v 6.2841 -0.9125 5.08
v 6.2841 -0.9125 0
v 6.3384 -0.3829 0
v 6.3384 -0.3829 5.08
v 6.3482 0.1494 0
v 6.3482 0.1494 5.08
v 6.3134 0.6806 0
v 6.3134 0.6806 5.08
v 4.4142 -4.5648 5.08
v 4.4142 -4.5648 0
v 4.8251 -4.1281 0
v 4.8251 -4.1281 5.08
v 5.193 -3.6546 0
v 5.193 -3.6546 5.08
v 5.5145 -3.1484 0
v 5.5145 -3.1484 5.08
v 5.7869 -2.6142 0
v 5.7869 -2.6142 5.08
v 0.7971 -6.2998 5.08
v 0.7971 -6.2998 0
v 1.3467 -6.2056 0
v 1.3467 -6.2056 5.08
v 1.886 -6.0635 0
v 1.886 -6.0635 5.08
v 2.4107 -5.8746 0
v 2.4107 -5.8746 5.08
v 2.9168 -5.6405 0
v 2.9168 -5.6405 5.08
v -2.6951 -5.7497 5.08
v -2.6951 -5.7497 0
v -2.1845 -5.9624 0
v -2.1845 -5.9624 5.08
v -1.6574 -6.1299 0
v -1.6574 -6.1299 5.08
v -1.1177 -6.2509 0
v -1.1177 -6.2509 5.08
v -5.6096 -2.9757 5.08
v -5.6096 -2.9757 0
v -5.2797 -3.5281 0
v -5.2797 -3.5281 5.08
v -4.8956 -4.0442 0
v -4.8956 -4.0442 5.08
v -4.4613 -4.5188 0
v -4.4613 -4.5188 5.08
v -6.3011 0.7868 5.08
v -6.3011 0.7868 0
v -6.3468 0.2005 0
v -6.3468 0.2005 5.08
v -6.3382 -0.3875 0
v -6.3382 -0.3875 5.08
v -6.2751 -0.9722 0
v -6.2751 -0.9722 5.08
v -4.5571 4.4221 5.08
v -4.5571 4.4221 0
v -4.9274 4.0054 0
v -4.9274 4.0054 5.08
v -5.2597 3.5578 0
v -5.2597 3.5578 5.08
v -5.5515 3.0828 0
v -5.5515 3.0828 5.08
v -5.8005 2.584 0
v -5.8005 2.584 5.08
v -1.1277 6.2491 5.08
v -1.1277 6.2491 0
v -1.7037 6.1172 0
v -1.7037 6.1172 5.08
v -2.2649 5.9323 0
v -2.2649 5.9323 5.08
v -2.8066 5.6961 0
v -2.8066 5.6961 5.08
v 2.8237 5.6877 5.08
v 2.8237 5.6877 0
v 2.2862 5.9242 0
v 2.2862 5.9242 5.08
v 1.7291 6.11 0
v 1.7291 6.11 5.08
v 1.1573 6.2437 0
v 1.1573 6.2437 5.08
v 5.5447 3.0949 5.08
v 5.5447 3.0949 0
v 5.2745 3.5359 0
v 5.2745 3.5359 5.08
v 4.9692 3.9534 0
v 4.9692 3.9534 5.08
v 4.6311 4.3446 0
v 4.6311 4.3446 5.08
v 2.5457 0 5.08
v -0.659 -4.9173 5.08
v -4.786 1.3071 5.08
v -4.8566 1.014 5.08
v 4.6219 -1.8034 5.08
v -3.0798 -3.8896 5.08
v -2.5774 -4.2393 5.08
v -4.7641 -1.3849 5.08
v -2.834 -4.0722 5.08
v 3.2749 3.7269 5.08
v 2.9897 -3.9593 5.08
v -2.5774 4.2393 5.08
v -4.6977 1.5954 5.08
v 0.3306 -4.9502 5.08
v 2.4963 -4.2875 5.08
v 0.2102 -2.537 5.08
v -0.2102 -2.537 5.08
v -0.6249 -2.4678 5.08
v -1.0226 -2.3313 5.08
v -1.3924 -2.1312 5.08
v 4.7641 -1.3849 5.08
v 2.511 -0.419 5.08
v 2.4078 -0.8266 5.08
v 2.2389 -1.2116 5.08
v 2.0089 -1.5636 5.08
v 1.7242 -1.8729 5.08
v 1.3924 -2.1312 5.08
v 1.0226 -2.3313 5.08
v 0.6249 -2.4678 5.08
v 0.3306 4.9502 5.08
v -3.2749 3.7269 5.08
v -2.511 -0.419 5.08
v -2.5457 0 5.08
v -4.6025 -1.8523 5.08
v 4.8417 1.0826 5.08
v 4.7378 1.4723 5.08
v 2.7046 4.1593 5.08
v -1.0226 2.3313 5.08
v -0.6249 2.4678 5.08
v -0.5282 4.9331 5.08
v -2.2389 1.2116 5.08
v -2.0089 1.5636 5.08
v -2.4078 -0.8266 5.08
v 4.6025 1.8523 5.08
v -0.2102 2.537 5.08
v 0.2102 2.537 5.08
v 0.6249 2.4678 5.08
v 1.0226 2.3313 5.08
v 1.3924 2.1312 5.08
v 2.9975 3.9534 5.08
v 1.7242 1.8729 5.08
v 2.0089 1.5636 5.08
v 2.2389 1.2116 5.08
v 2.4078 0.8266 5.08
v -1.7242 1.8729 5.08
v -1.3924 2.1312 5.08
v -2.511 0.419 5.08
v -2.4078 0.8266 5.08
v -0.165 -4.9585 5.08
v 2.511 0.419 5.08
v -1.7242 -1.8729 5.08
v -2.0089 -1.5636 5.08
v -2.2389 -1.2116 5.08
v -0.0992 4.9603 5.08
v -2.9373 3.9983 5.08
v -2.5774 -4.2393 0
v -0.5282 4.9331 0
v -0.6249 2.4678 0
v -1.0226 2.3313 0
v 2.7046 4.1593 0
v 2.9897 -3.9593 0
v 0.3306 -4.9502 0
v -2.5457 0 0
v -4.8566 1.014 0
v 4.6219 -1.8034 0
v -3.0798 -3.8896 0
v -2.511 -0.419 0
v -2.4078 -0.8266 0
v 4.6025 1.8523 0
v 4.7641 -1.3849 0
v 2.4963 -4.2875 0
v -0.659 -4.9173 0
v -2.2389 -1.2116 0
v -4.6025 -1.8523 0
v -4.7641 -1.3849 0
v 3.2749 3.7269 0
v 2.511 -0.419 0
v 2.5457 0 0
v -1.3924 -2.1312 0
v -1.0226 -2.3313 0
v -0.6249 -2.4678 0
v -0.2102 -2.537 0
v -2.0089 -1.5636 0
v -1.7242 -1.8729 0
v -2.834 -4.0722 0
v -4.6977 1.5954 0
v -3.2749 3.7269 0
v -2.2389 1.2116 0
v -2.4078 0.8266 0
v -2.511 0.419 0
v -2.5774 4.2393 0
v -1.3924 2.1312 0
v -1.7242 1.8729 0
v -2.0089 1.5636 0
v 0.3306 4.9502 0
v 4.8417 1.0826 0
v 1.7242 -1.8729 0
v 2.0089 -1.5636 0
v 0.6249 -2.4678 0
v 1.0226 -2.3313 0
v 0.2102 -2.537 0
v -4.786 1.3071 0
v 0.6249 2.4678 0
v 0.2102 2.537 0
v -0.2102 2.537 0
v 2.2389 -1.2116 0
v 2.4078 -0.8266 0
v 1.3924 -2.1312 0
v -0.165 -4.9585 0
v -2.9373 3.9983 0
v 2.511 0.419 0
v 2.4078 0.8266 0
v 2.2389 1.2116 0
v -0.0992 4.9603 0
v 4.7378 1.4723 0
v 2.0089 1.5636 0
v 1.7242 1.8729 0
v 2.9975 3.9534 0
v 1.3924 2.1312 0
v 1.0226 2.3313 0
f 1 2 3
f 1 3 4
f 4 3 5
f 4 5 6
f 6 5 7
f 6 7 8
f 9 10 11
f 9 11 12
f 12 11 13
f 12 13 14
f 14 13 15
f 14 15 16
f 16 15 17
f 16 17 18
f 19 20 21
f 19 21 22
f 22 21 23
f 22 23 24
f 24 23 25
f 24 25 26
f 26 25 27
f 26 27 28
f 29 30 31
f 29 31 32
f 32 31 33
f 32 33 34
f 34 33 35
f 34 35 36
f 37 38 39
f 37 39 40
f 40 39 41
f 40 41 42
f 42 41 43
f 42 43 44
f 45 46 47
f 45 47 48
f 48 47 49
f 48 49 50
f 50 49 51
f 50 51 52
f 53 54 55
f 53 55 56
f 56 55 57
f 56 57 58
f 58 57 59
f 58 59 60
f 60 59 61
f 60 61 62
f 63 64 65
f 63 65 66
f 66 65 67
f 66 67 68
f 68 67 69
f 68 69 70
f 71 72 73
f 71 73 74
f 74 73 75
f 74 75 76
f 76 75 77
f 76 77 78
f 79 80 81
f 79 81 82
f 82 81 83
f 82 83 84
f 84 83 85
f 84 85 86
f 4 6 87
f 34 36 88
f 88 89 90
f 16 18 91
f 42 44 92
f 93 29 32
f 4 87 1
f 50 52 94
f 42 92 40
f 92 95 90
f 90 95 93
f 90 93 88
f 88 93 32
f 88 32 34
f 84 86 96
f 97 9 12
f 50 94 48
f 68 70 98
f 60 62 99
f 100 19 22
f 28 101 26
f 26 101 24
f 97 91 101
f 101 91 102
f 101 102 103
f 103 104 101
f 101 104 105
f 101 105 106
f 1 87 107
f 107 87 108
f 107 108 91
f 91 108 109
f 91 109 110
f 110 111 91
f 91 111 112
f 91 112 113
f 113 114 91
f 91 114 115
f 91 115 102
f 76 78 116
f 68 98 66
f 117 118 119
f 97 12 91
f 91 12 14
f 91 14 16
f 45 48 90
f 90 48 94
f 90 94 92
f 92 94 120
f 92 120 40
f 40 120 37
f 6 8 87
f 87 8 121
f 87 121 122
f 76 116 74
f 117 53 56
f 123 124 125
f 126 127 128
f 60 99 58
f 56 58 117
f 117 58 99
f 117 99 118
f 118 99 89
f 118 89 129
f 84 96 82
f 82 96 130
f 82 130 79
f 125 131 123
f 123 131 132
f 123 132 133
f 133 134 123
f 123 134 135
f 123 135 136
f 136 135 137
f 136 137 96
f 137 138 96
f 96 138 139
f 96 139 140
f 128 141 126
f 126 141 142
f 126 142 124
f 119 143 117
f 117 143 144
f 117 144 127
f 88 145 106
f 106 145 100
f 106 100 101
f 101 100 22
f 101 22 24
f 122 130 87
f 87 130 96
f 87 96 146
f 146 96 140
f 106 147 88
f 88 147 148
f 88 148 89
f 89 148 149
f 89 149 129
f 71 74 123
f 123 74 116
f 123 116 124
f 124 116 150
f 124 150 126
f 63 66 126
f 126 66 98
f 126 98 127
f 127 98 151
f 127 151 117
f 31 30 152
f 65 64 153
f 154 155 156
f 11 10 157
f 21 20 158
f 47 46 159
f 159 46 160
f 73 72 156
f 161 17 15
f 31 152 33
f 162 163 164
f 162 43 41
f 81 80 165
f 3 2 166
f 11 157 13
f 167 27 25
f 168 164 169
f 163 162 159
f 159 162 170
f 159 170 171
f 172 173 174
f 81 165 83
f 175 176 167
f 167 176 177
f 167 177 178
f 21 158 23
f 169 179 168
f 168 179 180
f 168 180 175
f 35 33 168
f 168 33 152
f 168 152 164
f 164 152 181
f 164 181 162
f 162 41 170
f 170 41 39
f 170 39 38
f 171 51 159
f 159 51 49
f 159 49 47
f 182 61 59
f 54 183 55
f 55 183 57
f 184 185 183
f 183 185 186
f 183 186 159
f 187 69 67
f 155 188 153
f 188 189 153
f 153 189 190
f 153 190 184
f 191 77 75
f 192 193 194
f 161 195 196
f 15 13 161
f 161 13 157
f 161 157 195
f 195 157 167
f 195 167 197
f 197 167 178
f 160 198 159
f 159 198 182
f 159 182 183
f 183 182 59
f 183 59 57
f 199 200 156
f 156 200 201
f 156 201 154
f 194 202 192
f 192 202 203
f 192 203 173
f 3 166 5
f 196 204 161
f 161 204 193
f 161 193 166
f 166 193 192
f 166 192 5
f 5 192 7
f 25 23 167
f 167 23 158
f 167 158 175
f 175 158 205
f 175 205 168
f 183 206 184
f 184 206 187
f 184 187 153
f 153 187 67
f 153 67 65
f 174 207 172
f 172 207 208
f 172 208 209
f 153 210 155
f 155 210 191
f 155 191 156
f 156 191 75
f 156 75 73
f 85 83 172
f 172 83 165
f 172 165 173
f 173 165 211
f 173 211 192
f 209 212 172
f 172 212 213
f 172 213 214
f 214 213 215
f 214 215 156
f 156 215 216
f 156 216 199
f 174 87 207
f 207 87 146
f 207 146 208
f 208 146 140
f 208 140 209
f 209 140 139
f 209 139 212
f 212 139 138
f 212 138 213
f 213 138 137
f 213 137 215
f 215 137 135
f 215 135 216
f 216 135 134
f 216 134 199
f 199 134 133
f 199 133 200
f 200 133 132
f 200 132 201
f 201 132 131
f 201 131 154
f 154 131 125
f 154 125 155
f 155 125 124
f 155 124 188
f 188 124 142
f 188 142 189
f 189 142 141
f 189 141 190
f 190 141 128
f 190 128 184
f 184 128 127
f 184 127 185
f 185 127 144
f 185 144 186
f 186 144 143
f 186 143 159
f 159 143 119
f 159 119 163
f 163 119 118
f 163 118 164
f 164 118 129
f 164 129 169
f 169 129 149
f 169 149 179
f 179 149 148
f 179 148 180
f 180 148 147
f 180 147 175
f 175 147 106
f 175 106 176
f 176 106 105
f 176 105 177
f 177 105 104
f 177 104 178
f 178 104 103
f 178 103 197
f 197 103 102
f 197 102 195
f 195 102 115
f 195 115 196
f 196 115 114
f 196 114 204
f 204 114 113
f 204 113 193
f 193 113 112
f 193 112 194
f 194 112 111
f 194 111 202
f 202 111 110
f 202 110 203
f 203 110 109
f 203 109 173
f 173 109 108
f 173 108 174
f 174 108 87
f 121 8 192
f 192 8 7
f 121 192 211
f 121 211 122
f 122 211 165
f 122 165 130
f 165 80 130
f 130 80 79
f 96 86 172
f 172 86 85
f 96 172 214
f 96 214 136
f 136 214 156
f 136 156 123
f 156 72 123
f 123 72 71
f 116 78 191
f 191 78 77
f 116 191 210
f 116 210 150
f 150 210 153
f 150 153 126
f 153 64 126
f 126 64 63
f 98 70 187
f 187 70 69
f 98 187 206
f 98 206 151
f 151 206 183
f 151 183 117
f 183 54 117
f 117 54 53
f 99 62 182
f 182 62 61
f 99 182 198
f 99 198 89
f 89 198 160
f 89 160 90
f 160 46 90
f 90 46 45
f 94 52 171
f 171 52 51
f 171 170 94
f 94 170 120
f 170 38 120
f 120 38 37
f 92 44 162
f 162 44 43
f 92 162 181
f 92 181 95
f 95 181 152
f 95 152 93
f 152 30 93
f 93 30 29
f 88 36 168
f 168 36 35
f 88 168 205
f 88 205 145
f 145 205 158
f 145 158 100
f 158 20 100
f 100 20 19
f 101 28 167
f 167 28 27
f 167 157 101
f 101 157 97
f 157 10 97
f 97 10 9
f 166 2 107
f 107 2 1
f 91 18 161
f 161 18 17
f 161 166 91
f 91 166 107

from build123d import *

# Parameters (mm, degrees)
SKETCH1_R           = 6.35
BOSS_EXTRUDE1_DEPTH = 5.08
SKETCH2_R           = 2.545711461
CUT_EXTRUDE1_DEPTH  = 5.08
CUT_EXTRUDE4_DEPTH  = 5.08


with BuildPart() as part:
    # Sketch1 → Boss-Extrude1 (new body)
    with BuildSketch(Plane.XY):
        Circle(SKETCH1_R)
    extrude(amount=BOSS_EXTRUDE1_DEPTH)

    # Sketch2 → Cut-Extrude1 (cut)
    with BuildSketch(Plane.XY.offset(5.08)):
        Circle(SKETCH2_R)
    extrude(amount=-CUT_EXTRUDE1_DEPTH, mode=Mode.SUBTRACT)

    # Sketch6 → Cut-Extrude4 (cut)
    with BuildSketch(Plane(origin=(0, 0, 0), x_dir=(-1, 0, 0), z_dir=(0, 0, -1))):
        with BuildLine():
            Line((-6.313419859, 0.680609785), (-4.841727293, 1.082552663))
            ThreePointArc((-4.841727293, 1.082552663), (-4.737782551, 1.472297507), (-4.602520026, 1.852310143))
            Line((-4.602520026, 1.852310143), (-5.544711841, 3.094942746))
            ThreePointArc((-5.544711841, 3.094942746), (-6.050708452, 1.926506484), (-6.313419859, 0.680609785))
        make_face()
        with BuildLine():
            ThreePointArc((-4.621895526, -1.803420416), (-4.697643554, -1.595740734), (-4.764064977, -1.384892901))
            Line((-4.764064977, -1.384892901), (-6.284089397, -0.912535181))
            ThreePointArc((-6.284089397, -0.912535181), (-6.095179755, -1.780809857), (-5.786915427, -2.614213043))
            Line((-5.786915427, -2.614213043), (-4.621895526, -1.803420416))
        make_face()
        with BuildLine():
            ThreePointArc((-2.49633596, -4.287487636), (-2.747933203, -4.130751331), (-2.989720929, -3.959269152))
            Line((-2.989720929, -3.959269152), (-4.414172057, -4.564820375))
            ThreePointArc((-4.414172057, -4.564820375), (-3.704724213, -5.157278207), (-2.916783485, -5.640467543))
            Line((-2.916783485, -5.640467543), (-2.49633596, -4.287487636))
        make_face()
        with BuildLine():
            ThreePointArc((0.658971441, -4.91731635), (0.164985262, -4.958530358), (-0.330647946, -4.950243972))
            Line((-0.330647946, -4.950243972), (-0.797062617, -6.299777074))
            ThreePointArc((-0.797062617, -6.299777074), (0.162157154, -6.347929194), (1.117667403, -6.250865506))
            Line((1.117667403, -6.250865506), (0.658971441, -4.91731635))
        make_face()
        with BuildLine():
            ThreePointArc((3.079848524, -3.889572794), (2.834017843, -4.072172186), (2.577390132, -4.23925743))
            Line((2.577390132, -4.23925743), (2.695058949, -5.74970932))
            ThreePointArc((2.695058949, -5.74970932), (3.630700167, -5.209656063), (4.461255519, -4.518816127))
            Line((4.461255519, -4.518816127), (3.079848524, -3.889572794))
        make_face()
        with BuildLine():
            ThreePointArc((4.764064977, -1.384892901), (4.689120213, -1.620615648), (4.602520026, -1.852310143))
            Line((4.602520026, -1.852310143), (5.609586886, -2.975741079))
            ThreePointArc((5.609586886, -2.975741079), (6.026210342, -2.001821398), (6.2751364, -0.972195025))
            Line((6.2751364, -0.972195025), (4.764064977, -1.384892901))
        make_face()
        with BuildLine():
            ThreePointArc((4.697742855, 1.595448377), (4.785985372, 1.307129477), (4.856550498, 1.013982598))
            Line((4.856550498, 1.013982598), (6.301072583, 0.786755552))
            ThreePointArc((6.301072583, 0.786755552), (6.117140529, 1.703846165), (5.800483524, 2.583968051))
            Line((5.800483524, 2.583968051), (4.697742855, 1.595448377))
        make_face()
        with BuildLine():
            Line((-4.631054346, 4.34463297), (-3.274854363, 3.726871658))
            ThreePointArc((-3.274854363, 3.726871658), (-2.997527533, 3.953362131), (-2.704587495, 4.159260744))
            Line((-2.704587495, 4.159260744), (-2.823654461, 5.68765993))
            ThreePointArc((-2.823654461, 5.68765993), (-3.787360718, 5.096900901), (-4.631054346, 4.34463297))
        make_face()
        with BuildLine():
            Line((-1.15729269, 6.243650665), (-0.330647946, 4.950243972))
            ThreePointArc((-0.330647946, 4.950243972), (0.099169547, 4.960283142), (0.528242314, 4.933072421))
            Line((0.528242314, 4.933072421), (1.127688946, 6.249065341))
            ThreePointArc((1.127688946, 6.249065341), (-0.015047428, 6.349982171), (-1.15729269, 6.243650665))
        make_face()
        with BuildLine():
            Line((2.80655769, 5.696115688), (2.577390132, 4.23925743))
            ThreePointArc((2.577390132, 4.23925743), (2.937316156, 3.998301796), (3.274854363, 3.726871658))
            Line((3.274854363, 3.726871658), (4.557114361, 4.422127169))
            ThreePointArc((4.557114361, 4.422127169), (3.736532912, 5.134279092), (2.80655769, 5.696115688))
        make_face()
    extrude(amount=-CUT_EXTRUDE4_DEPTH, mode=Mode.SUBTRACT)


solid = part.part
